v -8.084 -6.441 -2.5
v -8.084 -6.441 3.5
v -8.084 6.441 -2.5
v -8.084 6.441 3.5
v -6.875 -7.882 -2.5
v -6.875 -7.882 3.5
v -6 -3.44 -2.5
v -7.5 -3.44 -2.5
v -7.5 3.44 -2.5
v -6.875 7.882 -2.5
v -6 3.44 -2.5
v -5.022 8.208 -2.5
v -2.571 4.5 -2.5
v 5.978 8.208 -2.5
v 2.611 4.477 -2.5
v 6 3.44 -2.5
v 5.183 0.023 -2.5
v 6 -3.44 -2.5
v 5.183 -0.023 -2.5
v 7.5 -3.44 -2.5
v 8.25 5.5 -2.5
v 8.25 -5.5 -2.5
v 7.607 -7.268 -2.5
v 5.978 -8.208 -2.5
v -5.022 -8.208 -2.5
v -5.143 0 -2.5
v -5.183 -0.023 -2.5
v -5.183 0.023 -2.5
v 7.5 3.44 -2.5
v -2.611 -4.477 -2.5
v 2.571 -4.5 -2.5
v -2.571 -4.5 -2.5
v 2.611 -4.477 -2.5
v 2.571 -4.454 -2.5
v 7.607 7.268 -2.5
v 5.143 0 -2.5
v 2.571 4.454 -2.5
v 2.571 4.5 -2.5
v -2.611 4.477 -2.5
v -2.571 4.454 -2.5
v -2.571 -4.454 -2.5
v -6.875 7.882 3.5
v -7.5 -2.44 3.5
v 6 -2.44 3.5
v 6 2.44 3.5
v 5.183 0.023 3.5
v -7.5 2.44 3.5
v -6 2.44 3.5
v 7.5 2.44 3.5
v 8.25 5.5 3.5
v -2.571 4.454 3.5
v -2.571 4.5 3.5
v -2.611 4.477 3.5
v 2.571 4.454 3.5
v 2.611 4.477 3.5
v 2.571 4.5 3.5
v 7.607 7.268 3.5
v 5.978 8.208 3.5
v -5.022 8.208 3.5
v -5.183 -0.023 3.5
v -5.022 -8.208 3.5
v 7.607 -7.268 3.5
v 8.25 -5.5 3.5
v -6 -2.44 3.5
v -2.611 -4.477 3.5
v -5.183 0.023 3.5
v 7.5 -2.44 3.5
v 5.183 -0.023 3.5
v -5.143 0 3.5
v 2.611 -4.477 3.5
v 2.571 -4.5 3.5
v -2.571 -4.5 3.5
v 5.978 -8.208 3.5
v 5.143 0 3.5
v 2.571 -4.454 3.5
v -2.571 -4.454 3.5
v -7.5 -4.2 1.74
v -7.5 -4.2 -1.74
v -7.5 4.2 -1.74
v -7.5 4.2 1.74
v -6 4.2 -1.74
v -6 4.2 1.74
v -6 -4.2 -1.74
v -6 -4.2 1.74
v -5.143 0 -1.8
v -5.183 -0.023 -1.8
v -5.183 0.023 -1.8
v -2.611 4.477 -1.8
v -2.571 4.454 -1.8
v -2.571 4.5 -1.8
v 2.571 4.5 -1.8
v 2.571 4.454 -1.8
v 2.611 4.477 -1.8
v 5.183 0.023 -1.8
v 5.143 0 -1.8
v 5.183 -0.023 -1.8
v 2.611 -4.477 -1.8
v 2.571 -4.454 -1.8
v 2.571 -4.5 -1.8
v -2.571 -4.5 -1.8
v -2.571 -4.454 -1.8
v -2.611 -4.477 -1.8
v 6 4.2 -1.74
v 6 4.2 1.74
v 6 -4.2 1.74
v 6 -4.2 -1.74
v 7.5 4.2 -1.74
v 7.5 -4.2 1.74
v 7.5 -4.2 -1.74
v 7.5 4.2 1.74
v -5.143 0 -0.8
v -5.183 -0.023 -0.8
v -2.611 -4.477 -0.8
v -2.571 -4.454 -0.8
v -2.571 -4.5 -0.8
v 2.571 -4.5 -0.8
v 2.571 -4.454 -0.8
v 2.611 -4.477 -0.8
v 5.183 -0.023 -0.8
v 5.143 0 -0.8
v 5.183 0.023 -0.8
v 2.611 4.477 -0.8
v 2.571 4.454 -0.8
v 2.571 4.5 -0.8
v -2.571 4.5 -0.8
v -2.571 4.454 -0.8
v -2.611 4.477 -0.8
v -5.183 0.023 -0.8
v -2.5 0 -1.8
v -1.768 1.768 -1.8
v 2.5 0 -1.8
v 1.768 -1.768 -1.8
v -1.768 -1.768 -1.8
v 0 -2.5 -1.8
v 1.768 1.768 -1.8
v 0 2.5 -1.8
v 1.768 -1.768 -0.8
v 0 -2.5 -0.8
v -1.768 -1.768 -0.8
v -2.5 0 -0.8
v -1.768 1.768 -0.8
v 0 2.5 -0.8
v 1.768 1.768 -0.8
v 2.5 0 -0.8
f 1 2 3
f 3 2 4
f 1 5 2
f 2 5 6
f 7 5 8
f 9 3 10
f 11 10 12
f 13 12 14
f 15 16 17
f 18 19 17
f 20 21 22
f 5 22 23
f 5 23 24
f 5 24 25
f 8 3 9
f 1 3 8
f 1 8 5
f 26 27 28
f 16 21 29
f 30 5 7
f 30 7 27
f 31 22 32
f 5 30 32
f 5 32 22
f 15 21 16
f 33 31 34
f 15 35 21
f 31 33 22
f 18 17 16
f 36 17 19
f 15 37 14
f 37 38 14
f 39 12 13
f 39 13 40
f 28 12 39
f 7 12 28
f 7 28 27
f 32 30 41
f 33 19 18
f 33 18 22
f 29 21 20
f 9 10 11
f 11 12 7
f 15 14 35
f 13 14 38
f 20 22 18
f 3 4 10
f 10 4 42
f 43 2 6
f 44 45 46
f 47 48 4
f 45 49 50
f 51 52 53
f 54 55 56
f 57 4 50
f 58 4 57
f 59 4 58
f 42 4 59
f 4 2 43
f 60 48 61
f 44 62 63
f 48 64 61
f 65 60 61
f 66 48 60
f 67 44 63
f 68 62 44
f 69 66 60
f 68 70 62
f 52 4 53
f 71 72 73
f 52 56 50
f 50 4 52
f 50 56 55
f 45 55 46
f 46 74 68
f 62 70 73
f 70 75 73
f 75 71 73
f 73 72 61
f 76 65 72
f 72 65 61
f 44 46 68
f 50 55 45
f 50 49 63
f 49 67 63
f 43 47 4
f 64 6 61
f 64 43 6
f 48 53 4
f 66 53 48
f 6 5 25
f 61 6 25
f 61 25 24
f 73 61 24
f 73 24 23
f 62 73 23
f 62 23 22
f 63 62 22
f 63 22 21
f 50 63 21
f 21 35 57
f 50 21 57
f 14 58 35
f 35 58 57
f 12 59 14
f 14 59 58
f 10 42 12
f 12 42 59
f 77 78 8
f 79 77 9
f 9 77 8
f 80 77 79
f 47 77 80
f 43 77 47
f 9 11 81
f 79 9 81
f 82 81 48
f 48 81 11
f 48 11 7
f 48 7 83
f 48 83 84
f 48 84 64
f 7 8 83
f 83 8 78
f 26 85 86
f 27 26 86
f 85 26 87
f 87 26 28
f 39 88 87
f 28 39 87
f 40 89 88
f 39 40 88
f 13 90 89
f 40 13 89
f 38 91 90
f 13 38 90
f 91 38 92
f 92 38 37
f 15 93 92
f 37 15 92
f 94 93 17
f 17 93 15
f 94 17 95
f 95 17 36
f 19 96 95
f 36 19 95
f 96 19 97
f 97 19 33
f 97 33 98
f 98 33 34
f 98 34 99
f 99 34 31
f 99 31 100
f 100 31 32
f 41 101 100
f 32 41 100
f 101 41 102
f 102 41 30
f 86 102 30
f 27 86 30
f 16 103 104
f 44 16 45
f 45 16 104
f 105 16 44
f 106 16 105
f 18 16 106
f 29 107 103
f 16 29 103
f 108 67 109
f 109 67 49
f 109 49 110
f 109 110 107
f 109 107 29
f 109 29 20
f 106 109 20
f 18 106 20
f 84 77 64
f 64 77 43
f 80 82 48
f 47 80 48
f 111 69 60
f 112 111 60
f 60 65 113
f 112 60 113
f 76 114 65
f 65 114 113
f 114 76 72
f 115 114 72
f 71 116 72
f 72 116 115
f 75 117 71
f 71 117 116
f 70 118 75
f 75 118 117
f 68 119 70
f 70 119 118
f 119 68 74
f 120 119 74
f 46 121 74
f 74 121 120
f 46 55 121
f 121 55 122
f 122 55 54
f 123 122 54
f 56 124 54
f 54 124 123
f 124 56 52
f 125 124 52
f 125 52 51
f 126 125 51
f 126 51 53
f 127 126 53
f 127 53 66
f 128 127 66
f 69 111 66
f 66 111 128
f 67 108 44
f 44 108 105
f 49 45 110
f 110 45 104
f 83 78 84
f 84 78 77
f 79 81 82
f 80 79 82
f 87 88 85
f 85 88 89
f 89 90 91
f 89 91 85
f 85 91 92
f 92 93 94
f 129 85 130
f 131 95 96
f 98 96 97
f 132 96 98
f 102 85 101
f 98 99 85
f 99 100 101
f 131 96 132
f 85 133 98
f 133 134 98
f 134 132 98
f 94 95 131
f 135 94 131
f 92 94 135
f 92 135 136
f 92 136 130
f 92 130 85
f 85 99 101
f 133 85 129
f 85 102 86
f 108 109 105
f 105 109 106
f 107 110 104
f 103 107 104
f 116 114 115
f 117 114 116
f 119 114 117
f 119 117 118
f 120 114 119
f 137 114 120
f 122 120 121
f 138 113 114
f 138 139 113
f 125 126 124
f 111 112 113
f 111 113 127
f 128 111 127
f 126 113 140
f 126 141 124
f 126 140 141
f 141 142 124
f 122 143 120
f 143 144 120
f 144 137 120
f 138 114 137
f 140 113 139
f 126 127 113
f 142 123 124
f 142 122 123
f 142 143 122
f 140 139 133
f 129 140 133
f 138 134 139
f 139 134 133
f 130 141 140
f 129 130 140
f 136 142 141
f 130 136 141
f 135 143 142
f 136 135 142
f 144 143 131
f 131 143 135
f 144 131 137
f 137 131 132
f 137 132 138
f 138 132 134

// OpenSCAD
// file: shapes.scad
/*
 *  OpenSCAD Shapes Library (www.openscad.org)
 *  Copyright (C) 2009  Catarina Mota
 *  Copyright (C) 2010  Elmo Mäntynen
 *
 *  License: LGPL 2.1 or later
*/

// 2D Shapes
//ngon(sides, radius, center=false);

// 3D Shapes
//box(width, height, depth);
//roundedBox(width, height, depth, radius);
//cone(height, radius);
//ellipticalCylinder(width, height, depth);
//ellipsoid(width, height);
//tube(height, radius, wall, center = false);
//tube2(height, ID, OD, center = false);
//ovalTube(width, height, depth, wall, center = false);
//hexagon(height, depth);
//octagon(height, depth);
//dodecagon(height, depth);
//hexagram(height, depth);
//rightTriangle(adjacent, opposite, depth);
//equiTriangle(side, depth);
//12ptStar(height, depth);

//----------------------

// size is a vector [w, h, d]
module box(width, height, depth) {
  cube([width, height, depth], true);
}

// size is a vector [w, h, d]
module roundedBox(width, height, depth, radius) {
  size=[width, height, depth];
  cube(size - [2*radius,0,0], true);
  cube(size - [0,2*radius,0], true);
  for (x = [radius-size[0]/2, -radius+size[0]/2],
       y = [radius-size[1]/2, -radius+size[1]/2]) {
    translate([x,y,0]) cylinder(r=radius, h=size[2], center=true);
  }
}

module cone(height, radius, center = false) {
  cylinder(height, radius, 0, center);
}

module ellipticalCylinder(w,h, height, center = false) {
  scale([1, h/w, 1]) cylinder(h=height, r=w, center=center);
}

module ellipsoid(w, h, center = false) {
  scale([1, h/w, 1]) sphere(r=w/2, center=center);
}

// wall is wall thickness
module tube(height, radius, wall, center = false) {
  difference() {
    cylinder(h=height, r=radius, center=center);
    cylinder(h=height, r=radius-wall, center=center);
  }
}

// wall is wall thickness
module tube2(height, ID, OD, center = false) {
  difference() {
    cylinder(h=height, r=OD/2, center=center);
    cylinder(h=height, r=ID/2, center=center);
  }
}

// wall is wall thickness
module ovalTube(height, rx, ry, wall, center = false) {
  difference() {
    scale([1, ry/rx, 1]) cylinder(h=height, r=rx, center=center);
    scale([(rx-wall)/rx, (ry-wall)/rx, 1]) cylinder(h=height, r=rx, center=center);
  }
}

// size is the XY plane size, height in Z
module hexagon(size, height) {
  boxWidth = size/1.75;
  for (r = [-60, 0, 60]) rotate([0,0,r]) cube([boxWidth, size, height], true);
}

// size is the XY plane size, height in Z
module octagon(size, height) {
  intersection() {
    cube([size, size, height], true);
    rotate([0,0,45]) cube([size, size, height], true);
  }
}

// size is the XY plane size, height in Z
module dodecagon(size, height) {
  intersection() {
    hexagon(size, height);
    rotate([0,0,90]) hexagon(size, height);
  }
}

// size is the XY plane size, height in Z
module hexagram(size, height) {
  boxWidth=size/1.75;
  for (v = [[0,1],[0,-1],[1,-1]]) {
    intersection() {
      rotate([0,0,60*v[0]]) cube([size, boxWidth, height], true);
      rotate([0,0,60*v[1]]) cube([size, boxWidth, height], true);
    }
  }
}

module rightTriangle(adjacent, opposite, height) {
  difference() {
    translate([-adjacent/2,opposite/2,0]) cube([adjacent, opposite, height], true);
    translate([-adjacent,0,0]) {
      rotate([0,0,atan(opposite/adjacent)]) dislocateBox(adjacent*2, opposite, height+2);
    }
  }
}

module equiTriangle(side, height) {
  difference() {
    translate([-side/2,side/2,0]) cube([side, side, height], true);
    rotate([0,0,30]) dislocateBox(side*2, side, height);
    translate([-side,0,0]) {
      rotate([0,0,60]) dislocateBox(side*2, side, height);
    }
  }
}

module 12ptStar(size, height) {
  starNum = 3;
  starAngle = 360/starNum;
  for (s = [1:starNum]) {
    rotate([0, 0, s*starAngle]) cube([size, size, height], true);
  }
}

//-----------------------
//MOVES THE ROTATION AXIS OF A BOX FROM ITS CENTER TO THE BOTTOM LEFT CORNER
module dislocateBox(w, h, d) {
  translate([0,0,-d/2]) cube([w,h,d]);
}

//-----------------------
// Tests
//module test2D_ellipse(){ellipse(10, 5);}
module test_ellipsoid(){ellipsoid(10, 5);}

//module test2D_egg_outline(){egg_outline();}
// main file
include <shapes.scad>;

pivot_width = 1 ;

floor_depth=1;

block_size = 11;
block_height = 5;

hex_nut_width = 9;
hex_nut_height = 3.3 ;
drive_screw_diameter = 5 ;

smooth_bar_diameter = 8.4;
threaded_rod_diameter = 8.6;
dRod = smooth_bar_diameter ;

end_size = 7.5;
clamp_size = 10;

module pivotmotormount(){
difference(){
  union() {	
	// Main housing
	translate(v=[-block_size/2,-block_size/2,-block_height/2])
		minkowski() {
			cube(size = [ block_size,block_size,block_height]);
			cylinder(r=block_size/4);
		}

	// Pivot axis
	hull() {
		translate(v=[-block_size/2-pivot_width,0,0]) rotate(a=[0,90,0]) 
				cylinder(h = block_size+pivot_width*2 , r=block_height/2, $fn=32);
		translate(v=[-block_size/2,-pivot_width,-block_height/2])    cube(size = [ block_size,pivot_width*2,block_height]);
	}
  }

	// drive screw path
	translate(v=[0,0,-block_height/2-2])
		cylinder(h=block_height+4, r=drive_screw_diameter/2);

	// nut trap
	translate(v=[0,0, block_height-hex_nut_height]) hexagon(size=hex_nut_width,height=block_height);
	translate(v=[0,0, -hex_nut_height-floor_depth]) hexagon(size=hex_nut_width,height=block_height);

	// Pivot rod
	translate(v=[-block_size/2-pivot_width-1,0,0]) rotate(a=[0,90,0]) rotate([0, 0, 22.5]) cylinder(h = pivot_width+(block_size-hex_nut_width)/4 , r=dRod/2 / cos(22.5), $fn=8);
	translate(v=[ block_size/2+pivot_width+1,0,0]) rotate(a=[0,-90,0]) rotate([0, 0, 22.5]) cylinder(h = pivot_width+(block_size-hex_nut_width)/4  , r=dRod/2 / cos(22.5), $fn=8);
}
}

pivotmotormount();
